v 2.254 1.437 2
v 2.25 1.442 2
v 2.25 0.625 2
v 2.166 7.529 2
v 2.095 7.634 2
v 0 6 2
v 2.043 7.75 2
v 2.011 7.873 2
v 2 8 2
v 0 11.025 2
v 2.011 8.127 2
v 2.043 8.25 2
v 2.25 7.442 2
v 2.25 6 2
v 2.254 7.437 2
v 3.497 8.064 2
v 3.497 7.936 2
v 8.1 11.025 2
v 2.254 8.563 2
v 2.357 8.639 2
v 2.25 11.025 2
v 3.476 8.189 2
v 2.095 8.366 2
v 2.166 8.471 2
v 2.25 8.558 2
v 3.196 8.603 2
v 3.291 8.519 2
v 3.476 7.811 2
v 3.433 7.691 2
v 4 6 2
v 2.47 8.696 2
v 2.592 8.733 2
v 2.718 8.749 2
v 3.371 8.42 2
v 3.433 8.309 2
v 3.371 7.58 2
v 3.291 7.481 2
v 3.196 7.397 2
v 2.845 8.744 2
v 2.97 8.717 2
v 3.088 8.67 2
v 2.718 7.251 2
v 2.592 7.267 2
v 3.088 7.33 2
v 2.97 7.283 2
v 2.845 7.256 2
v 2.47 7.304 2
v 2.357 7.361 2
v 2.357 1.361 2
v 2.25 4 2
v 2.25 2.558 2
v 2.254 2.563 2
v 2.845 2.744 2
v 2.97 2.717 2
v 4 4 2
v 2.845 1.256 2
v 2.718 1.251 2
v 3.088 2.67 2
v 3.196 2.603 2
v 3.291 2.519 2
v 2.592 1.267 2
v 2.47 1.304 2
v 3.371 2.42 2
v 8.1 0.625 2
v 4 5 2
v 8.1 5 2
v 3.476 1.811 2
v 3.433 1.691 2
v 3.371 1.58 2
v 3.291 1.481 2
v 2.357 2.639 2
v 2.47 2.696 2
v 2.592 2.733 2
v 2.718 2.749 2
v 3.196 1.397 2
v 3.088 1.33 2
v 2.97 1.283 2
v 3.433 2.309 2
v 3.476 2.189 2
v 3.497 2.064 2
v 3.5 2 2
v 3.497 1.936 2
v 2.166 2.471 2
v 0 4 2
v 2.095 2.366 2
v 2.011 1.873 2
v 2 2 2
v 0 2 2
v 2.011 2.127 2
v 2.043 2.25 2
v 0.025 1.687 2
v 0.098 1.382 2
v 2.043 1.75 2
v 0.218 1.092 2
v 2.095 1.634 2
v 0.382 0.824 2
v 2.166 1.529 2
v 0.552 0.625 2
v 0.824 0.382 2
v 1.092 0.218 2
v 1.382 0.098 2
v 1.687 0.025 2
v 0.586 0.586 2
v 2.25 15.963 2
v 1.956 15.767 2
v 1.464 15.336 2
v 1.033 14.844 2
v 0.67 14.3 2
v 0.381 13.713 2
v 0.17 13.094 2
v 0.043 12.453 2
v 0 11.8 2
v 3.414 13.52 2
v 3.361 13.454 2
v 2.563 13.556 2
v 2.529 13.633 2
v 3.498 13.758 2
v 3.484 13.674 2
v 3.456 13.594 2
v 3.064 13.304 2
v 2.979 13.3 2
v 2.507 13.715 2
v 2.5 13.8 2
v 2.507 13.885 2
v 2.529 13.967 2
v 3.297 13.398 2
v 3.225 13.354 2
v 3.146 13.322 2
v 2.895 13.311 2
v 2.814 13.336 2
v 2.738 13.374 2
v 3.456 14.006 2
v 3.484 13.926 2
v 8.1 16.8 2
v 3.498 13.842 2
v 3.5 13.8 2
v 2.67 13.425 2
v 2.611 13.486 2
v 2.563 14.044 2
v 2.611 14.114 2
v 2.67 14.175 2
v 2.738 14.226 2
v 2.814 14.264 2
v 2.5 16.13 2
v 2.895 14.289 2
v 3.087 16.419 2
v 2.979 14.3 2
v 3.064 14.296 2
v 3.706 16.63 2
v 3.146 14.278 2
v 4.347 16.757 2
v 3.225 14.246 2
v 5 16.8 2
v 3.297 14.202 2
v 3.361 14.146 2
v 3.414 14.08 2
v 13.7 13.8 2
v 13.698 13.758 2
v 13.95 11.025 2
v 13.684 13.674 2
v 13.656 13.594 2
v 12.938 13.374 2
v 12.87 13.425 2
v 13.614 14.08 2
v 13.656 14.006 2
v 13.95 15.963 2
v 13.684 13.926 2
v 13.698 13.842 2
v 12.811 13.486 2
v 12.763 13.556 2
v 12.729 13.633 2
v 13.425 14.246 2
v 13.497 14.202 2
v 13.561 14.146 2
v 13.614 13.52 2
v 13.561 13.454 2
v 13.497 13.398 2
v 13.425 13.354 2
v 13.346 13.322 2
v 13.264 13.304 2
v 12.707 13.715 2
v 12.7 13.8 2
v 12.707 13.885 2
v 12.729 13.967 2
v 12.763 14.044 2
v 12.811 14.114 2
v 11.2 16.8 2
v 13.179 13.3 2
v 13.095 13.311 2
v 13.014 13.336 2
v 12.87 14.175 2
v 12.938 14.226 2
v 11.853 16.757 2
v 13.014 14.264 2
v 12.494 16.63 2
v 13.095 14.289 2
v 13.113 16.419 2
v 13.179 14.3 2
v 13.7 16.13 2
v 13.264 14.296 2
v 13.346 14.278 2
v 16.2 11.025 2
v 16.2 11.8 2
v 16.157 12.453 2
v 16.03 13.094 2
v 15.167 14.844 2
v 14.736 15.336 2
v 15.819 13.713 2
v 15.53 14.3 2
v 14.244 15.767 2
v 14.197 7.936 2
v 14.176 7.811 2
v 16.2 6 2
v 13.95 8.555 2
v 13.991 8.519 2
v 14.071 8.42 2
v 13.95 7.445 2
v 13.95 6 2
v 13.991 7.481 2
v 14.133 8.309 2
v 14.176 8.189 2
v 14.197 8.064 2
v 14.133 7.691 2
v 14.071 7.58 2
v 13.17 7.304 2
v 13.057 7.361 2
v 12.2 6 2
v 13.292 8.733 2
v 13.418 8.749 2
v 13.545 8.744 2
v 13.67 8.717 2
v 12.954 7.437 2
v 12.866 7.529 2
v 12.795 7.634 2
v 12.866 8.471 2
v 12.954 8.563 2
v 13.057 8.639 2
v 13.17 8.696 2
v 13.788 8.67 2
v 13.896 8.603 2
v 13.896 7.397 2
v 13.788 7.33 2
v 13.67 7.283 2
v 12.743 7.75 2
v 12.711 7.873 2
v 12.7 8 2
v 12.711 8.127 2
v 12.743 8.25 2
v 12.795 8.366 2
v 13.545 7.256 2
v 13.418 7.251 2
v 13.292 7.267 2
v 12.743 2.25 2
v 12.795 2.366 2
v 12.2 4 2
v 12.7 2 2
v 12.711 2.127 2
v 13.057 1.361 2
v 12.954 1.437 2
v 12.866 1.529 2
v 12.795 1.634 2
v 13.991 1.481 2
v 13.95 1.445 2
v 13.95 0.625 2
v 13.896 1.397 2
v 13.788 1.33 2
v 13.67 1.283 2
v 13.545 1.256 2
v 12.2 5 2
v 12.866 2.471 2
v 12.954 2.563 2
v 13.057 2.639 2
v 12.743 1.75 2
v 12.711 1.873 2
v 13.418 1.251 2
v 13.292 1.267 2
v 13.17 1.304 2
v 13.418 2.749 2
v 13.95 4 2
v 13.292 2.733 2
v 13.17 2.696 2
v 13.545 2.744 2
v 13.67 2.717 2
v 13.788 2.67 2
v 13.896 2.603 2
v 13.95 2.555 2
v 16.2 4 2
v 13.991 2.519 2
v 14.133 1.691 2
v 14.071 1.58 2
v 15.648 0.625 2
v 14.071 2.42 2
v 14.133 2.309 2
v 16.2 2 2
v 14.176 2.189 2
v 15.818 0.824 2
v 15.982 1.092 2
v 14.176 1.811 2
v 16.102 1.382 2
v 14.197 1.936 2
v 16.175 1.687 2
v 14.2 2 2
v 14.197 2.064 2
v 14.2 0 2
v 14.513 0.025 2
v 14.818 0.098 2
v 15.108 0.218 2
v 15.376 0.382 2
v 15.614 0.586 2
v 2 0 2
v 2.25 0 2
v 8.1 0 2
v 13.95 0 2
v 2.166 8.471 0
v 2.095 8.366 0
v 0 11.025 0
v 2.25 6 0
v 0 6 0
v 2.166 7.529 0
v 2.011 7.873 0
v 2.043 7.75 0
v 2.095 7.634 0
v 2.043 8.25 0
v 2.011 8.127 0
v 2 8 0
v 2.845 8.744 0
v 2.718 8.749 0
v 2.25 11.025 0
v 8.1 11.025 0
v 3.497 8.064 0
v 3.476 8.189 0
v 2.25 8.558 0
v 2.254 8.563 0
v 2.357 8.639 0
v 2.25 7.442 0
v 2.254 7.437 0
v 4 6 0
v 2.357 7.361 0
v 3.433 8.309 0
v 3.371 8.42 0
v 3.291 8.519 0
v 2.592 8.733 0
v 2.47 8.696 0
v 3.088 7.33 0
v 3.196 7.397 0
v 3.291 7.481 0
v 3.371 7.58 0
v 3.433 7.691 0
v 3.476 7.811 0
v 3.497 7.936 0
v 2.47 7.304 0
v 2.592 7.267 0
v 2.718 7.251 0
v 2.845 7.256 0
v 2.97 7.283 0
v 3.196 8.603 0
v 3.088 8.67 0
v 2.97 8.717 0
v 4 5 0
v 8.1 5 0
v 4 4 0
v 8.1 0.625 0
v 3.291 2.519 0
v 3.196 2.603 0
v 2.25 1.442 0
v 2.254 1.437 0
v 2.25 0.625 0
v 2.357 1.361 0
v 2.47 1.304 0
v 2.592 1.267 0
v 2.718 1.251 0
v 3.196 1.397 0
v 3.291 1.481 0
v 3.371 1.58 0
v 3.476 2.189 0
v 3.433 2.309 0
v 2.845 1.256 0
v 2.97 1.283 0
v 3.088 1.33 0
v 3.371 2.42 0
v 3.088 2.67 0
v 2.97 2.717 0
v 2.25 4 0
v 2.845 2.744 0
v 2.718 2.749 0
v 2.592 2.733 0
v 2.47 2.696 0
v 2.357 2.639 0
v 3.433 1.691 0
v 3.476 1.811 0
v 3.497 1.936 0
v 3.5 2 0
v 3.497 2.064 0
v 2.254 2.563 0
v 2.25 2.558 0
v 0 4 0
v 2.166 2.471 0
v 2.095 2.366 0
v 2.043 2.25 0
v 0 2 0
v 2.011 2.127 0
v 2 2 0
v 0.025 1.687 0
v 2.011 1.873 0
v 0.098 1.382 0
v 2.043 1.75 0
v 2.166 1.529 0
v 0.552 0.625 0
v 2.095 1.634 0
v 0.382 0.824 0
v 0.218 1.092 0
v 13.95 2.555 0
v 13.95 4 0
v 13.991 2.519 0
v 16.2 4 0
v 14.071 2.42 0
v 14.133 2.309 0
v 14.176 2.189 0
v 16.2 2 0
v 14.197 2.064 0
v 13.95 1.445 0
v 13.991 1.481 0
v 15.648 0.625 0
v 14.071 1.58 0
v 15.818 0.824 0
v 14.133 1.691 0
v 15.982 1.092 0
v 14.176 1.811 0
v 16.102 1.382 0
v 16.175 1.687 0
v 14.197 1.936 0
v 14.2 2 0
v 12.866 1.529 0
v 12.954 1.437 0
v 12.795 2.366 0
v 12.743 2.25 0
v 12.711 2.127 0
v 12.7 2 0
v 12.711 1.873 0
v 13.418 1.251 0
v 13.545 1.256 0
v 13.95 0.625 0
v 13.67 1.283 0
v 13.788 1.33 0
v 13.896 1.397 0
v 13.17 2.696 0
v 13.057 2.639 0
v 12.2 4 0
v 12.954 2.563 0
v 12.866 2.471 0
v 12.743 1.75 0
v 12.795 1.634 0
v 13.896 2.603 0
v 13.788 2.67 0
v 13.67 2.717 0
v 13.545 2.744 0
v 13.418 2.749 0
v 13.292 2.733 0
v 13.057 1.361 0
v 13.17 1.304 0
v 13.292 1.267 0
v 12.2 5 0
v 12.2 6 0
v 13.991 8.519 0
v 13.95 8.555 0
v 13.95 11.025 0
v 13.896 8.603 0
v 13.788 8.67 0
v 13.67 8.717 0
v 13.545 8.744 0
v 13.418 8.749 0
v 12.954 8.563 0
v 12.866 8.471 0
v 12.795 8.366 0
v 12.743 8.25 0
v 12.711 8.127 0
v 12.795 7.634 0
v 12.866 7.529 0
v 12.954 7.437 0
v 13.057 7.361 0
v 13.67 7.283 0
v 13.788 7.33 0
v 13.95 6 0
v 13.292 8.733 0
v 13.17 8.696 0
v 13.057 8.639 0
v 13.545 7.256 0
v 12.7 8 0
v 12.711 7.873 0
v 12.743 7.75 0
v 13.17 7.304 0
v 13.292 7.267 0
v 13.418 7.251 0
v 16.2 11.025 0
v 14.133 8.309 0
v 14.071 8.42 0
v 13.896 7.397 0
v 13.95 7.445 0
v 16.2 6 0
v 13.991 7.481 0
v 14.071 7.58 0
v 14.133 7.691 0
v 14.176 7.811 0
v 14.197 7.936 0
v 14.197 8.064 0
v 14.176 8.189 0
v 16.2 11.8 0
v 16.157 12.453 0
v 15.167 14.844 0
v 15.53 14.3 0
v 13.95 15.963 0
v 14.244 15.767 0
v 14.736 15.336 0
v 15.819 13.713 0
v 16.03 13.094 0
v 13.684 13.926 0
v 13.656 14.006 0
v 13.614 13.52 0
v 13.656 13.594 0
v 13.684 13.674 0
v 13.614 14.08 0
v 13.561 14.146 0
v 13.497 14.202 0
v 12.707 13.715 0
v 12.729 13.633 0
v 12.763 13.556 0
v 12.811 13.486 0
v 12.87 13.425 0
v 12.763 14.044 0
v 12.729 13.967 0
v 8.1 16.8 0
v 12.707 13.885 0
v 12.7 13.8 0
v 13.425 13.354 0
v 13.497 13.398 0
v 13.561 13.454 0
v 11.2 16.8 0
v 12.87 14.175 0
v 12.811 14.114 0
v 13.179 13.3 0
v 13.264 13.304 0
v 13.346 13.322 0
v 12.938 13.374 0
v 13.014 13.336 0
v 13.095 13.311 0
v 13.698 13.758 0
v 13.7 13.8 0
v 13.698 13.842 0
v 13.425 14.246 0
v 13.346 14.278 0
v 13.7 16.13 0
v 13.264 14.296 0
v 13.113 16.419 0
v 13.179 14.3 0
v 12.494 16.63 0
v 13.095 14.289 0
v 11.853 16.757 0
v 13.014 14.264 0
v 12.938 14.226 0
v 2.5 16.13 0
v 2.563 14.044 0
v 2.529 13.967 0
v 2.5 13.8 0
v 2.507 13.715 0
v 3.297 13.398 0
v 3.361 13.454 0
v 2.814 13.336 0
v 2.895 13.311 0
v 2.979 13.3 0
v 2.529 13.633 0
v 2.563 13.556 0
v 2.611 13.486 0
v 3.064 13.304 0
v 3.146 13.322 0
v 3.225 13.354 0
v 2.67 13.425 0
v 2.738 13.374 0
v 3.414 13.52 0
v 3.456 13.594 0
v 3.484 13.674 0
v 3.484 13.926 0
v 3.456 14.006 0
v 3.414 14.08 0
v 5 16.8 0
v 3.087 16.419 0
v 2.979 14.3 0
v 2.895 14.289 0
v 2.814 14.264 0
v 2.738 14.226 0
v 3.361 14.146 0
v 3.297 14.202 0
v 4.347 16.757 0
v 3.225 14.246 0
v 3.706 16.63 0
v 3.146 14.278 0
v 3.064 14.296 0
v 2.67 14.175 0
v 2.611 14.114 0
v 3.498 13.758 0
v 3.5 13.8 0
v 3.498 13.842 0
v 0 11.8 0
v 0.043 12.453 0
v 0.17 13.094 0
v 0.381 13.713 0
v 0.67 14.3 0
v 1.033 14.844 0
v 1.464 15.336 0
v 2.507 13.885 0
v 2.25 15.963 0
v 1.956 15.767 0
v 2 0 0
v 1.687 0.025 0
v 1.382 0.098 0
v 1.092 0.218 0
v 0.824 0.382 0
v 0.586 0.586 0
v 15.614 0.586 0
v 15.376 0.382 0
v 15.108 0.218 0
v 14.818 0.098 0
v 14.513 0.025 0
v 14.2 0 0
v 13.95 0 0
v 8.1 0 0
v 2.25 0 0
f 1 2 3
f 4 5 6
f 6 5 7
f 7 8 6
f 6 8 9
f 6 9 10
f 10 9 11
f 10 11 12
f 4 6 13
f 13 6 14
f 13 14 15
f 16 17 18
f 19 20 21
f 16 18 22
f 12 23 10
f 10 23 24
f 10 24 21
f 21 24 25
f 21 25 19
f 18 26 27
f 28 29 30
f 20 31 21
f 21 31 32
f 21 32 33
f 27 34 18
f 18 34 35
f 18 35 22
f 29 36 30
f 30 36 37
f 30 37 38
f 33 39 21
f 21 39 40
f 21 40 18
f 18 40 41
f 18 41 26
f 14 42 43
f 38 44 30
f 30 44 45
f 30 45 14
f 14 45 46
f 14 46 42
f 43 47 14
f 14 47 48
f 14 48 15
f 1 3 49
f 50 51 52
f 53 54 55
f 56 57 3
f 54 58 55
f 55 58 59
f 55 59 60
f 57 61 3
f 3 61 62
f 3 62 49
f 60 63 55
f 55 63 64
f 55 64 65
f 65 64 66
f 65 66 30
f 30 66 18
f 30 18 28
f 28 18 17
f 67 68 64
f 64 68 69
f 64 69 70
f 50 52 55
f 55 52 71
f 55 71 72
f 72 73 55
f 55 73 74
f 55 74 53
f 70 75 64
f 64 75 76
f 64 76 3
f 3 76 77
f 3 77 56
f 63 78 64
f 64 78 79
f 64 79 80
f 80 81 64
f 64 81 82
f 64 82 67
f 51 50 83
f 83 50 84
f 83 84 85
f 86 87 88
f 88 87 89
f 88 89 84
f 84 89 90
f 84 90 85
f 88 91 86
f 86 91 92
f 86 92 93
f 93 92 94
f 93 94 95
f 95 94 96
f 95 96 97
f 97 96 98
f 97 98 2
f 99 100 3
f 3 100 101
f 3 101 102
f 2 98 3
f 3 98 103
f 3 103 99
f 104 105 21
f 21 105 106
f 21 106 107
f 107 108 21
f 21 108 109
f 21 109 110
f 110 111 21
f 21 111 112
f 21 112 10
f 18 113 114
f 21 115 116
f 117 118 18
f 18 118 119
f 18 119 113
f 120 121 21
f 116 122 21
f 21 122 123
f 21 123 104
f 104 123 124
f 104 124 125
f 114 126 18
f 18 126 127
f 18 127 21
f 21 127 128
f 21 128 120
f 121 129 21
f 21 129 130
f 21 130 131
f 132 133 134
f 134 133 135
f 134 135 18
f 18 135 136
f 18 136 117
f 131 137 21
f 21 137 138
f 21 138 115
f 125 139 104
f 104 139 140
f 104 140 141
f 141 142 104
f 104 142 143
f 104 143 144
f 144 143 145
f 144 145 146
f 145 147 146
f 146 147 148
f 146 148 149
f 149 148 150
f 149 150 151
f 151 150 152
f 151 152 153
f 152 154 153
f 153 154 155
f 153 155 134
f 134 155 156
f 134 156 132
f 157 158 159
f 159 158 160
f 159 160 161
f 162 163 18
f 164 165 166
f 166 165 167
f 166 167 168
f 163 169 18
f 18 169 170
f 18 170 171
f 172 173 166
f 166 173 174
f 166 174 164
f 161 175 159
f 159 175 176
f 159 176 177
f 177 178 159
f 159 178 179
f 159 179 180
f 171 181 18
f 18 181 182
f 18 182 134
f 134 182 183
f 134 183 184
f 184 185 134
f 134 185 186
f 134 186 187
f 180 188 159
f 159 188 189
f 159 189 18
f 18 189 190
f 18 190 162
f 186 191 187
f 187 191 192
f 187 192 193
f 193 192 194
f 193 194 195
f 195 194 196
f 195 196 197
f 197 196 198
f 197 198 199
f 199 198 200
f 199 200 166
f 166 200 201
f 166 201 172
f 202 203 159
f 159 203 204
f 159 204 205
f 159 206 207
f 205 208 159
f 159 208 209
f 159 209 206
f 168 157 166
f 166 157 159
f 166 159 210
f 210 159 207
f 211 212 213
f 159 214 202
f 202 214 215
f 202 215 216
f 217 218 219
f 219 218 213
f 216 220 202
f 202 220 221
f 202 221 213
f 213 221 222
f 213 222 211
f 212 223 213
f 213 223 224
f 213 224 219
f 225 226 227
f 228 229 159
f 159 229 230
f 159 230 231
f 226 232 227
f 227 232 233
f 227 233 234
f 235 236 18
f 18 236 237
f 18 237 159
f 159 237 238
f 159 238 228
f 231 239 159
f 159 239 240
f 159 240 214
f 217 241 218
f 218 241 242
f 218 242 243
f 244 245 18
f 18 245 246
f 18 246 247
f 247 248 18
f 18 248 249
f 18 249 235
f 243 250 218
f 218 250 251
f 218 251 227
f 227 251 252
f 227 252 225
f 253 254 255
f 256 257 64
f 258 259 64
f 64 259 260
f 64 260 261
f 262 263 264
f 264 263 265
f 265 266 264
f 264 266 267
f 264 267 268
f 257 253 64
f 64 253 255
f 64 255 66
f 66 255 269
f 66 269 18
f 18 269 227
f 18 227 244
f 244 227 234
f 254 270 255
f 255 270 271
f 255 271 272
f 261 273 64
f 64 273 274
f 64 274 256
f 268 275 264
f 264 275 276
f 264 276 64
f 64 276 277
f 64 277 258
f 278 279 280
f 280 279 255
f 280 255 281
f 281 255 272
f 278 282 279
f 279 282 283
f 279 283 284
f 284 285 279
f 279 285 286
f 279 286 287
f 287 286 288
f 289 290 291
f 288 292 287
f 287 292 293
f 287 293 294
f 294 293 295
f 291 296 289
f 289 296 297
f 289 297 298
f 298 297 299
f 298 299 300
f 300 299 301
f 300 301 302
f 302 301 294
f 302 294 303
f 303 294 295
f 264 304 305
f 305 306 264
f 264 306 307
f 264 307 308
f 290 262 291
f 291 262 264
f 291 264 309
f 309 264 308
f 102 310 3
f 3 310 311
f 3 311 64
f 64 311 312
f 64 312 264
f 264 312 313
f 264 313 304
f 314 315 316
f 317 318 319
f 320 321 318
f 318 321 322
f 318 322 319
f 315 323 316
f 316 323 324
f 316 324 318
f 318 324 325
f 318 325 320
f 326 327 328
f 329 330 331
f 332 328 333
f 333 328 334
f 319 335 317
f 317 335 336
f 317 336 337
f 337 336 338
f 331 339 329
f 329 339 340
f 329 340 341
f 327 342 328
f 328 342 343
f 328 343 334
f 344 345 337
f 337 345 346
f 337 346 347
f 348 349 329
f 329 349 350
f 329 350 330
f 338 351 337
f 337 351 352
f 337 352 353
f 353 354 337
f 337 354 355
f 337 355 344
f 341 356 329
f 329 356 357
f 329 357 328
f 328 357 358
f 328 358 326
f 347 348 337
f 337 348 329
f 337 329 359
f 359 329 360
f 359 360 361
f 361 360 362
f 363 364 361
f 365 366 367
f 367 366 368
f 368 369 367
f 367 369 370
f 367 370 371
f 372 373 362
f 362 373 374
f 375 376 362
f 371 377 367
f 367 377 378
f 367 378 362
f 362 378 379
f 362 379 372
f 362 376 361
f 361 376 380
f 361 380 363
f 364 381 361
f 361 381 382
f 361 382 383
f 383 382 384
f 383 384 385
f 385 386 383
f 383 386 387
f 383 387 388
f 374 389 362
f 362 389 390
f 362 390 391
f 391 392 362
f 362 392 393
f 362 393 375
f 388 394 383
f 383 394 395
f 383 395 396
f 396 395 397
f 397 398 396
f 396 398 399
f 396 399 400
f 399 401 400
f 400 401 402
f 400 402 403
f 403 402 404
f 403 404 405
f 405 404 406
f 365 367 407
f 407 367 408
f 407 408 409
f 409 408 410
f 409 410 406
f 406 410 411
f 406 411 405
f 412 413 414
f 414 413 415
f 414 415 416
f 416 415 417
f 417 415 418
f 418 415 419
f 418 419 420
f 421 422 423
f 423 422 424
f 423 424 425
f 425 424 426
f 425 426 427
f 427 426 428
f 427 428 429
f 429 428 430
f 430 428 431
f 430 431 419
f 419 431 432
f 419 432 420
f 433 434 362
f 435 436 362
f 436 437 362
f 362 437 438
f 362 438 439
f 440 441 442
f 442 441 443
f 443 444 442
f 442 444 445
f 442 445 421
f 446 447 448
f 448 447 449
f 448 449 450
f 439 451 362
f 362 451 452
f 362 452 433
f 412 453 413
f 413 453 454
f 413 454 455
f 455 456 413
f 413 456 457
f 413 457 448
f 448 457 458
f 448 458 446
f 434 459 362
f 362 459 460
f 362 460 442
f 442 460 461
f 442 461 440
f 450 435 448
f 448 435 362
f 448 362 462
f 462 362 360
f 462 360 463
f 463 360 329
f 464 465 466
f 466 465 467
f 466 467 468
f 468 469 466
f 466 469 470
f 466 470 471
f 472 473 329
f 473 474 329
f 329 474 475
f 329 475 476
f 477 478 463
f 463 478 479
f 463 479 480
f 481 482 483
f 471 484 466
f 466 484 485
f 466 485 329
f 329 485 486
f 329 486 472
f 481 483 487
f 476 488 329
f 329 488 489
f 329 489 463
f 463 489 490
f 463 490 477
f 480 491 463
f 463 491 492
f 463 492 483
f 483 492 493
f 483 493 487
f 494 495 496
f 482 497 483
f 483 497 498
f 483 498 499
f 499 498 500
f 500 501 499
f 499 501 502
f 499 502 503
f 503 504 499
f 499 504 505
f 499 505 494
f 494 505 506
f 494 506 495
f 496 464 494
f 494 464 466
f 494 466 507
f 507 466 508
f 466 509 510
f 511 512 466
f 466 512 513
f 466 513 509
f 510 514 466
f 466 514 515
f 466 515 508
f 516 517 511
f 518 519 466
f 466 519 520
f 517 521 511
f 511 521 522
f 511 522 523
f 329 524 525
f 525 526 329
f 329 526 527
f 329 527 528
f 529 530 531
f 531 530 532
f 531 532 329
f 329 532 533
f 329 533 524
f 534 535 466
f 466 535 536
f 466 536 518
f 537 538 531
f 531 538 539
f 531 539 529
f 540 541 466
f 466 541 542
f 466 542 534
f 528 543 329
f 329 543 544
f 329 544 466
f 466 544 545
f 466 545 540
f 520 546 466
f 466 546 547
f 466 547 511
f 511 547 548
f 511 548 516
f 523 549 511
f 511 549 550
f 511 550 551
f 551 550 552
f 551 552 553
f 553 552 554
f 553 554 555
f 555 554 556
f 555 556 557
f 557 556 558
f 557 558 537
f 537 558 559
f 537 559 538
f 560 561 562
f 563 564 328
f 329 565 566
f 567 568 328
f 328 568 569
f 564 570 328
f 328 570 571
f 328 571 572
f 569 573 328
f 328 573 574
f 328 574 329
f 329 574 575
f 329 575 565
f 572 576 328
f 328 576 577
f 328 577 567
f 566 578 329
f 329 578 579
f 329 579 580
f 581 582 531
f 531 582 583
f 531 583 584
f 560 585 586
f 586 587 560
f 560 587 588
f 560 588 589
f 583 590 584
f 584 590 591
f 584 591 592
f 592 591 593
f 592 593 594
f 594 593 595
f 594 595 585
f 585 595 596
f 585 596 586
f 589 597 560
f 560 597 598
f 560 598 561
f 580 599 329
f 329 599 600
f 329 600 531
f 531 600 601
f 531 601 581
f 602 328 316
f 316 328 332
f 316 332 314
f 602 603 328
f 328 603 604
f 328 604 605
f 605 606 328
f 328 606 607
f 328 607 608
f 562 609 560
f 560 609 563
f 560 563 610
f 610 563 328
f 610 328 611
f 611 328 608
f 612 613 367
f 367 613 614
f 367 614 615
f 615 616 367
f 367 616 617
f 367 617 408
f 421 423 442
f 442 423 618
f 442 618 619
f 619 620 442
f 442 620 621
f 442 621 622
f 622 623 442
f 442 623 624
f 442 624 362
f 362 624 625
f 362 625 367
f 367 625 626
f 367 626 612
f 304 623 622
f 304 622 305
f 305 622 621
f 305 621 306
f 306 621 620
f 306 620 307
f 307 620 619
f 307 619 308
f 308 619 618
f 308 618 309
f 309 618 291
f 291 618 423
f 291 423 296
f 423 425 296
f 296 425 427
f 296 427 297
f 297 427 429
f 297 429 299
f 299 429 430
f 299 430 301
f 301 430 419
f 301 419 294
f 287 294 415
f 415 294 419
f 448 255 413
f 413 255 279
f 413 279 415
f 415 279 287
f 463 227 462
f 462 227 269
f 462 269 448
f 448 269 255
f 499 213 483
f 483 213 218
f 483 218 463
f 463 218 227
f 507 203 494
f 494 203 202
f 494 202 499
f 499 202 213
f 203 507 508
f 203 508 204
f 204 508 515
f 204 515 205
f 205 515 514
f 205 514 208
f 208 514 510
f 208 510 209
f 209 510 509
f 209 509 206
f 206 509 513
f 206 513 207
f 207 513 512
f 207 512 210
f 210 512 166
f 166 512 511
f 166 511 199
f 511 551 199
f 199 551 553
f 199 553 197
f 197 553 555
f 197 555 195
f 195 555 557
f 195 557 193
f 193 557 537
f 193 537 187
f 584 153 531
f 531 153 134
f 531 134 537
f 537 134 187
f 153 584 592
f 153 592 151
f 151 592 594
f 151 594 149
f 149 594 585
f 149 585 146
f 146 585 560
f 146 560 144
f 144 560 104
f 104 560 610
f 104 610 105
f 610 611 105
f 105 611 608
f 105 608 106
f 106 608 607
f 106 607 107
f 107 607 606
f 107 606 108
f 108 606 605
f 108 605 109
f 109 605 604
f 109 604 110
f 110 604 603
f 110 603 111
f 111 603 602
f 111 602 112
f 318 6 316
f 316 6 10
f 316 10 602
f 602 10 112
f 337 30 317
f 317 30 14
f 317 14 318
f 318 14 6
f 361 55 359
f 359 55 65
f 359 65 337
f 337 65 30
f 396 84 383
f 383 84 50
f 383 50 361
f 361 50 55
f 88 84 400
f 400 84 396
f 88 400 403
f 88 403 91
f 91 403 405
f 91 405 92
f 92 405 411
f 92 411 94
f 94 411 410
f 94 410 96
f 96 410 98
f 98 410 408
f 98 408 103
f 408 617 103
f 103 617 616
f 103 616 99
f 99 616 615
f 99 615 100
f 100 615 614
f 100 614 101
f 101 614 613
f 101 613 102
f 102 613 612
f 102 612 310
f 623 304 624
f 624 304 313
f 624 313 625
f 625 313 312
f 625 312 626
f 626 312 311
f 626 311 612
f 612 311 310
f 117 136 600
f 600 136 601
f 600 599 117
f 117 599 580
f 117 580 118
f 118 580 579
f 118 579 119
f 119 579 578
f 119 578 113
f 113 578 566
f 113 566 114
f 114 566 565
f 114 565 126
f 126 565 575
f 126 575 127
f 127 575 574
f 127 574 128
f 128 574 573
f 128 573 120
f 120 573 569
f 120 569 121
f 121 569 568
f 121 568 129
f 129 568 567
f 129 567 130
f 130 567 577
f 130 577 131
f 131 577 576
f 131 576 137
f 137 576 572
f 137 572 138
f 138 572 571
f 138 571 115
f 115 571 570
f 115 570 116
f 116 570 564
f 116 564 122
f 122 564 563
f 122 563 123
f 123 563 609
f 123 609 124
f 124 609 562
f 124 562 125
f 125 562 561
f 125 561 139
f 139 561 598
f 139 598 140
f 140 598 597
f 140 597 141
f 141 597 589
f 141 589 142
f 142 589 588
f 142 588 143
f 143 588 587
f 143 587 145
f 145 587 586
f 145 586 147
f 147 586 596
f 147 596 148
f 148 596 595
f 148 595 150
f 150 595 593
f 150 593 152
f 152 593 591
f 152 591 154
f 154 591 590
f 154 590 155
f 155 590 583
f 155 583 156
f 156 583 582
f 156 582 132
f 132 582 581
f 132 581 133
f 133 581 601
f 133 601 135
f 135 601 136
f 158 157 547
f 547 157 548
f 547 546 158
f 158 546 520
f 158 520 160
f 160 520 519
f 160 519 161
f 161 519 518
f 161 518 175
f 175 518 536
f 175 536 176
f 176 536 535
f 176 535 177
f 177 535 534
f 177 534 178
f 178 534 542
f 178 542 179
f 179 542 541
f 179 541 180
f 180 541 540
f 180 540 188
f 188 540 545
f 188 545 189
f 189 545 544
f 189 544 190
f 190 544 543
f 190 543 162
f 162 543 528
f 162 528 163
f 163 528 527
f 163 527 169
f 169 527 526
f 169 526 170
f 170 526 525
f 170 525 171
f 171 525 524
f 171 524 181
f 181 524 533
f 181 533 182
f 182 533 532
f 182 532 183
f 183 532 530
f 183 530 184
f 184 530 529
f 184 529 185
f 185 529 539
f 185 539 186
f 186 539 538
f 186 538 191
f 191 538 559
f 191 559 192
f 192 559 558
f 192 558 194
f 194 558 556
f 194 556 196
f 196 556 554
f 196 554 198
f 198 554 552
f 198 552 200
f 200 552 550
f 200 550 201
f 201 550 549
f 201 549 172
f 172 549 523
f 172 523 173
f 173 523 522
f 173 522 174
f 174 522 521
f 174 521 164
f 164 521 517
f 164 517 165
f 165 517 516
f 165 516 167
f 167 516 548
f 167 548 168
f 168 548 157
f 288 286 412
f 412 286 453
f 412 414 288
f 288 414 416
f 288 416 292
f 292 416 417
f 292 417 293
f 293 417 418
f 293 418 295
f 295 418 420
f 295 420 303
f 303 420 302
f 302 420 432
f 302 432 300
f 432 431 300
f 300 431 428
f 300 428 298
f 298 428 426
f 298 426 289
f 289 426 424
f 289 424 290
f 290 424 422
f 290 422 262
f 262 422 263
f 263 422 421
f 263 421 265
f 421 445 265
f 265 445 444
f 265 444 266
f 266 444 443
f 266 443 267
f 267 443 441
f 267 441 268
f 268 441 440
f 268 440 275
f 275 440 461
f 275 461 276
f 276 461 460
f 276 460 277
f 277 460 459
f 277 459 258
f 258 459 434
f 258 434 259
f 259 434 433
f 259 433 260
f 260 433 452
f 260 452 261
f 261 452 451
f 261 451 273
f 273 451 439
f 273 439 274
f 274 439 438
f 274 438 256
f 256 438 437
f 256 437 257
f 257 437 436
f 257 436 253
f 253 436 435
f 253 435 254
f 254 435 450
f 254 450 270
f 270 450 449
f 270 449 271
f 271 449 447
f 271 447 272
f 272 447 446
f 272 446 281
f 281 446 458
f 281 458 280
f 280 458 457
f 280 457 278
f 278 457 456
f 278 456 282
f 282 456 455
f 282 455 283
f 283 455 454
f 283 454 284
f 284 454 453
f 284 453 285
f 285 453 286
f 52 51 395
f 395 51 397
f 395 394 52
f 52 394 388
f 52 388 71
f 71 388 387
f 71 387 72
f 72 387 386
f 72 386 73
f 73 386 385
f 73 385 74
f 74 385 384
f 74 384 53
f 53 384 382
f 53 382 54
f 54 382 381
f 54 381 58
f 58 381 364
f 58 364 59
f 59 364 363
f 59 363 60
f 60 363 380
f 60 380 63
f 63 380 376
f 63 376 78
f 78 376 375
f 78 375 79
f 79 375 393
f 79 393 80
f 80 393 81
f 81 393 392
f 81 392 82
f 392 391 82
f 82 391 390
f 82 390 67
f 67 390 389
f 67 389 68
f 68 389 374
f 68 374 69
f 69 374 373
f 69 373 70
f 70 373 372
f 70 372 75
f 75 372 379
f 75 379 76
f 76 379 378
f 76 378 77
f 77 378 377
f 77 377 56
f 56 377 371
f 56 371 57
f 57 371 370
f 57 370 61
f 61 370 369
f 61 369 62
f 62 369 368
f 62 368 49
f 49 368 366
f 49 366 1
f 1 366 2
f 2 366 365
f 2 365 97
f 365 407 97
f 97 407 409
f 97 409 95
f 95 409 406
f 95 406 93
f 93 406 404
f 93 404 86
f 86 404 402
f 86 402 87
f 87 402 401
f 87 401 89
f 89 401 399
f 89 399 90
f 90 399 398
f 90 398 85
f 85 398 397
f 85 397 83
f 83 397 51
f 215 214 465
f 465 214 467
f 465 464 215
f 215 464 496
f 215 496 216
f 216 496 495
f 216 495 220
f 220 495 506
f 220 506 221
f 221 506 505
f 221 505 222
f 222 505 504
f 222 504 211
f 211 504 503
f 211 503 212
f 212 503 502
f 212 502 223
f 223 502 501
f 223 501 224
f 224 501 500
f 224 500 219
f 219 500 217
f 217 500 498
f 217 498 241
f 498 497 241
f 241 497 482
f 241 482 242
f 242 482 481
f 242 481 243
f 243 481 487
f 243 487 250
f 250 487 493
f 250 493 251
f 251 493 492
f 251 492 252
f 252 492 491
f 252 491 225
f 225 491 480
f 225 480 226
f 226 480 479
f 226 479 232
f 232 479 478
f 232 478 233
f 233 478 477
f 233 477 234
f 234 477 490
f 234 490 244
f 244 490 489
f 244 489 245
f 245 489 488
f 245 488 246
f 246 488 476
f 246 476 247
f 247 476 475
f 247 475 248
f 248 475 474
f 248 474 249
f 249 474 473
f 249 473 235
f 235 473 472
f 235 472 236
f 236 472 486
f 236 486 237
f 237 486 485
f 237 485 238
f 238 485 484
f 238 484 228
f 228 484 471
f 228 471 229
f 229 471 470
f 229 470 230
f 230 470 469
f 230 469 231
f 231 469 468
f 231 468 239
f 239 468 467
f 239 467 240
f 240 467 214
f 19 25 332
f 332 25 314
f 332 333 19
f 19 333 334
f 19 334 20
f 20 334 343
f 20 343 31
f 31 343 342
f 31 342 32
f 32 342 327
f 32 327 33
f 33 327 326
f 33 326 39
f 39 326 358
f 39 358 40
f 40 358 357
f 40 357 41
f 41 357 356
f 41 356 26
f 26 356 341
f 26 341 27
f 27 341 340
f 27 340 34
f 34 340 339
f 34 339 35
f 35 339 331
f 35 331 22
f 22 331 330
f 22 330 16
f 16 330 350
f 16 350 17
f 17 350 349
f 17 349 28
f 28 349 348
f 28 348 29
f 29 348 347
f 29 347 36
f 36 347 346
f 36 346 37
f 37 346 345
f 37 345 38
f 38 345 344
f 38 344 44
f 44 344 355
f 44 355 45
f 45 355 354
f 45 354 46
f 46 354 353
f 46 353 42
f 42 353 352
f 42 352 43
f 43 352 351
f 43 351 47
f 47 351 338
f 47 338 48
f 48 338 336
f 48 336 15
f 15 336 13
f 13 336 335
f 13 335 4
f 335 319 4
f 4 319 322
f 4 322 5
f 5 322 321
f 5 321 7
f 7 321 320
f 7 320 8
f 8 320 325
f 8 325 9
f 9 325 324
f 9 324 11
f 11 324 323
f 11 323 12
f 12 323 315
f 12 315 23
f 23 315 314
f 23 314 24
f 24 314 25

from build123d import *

# Parameters (mm, degrees)
SKETCH1_R           = 0.5
SKETCH1_R_2         = 0.75
BOSS_EXTRUDE1_DEPTH = 2


with BuildPart() as part:
    # Sketch1 → Boss-Extrude1 (new body)
    with BuildSketch(Plane.XY):
        with BuildLine():
            Line((0, 6), (0, 11.8))
            ThreePointArc((0, 11.8), (1.464466094, 15.335533906), (5, 16.8))
            Line((5, 16.8), (11.2, 16.8))
            ThreePointArc((11.2, 16.8), (14.735533906, 15.335533906), (16.2, 11.8))
            Line((16.2, 11.8), (16.2, 6))
            Line((16.2, 6), (12.2, 6))
            Line((12.2, 6), (12.2, 4))
            Line((12.2, 4), (16.2, 4))
            Line((16.2, 4), (16.2, 2))
            ThreePointArc((16.2, 2), (15.614213562, 0.585786438), (14.2, 0))
            Line((14.2, 0), (2, 0))
            ThreePointArc((2, 0), (0.585786438, 0.585786438), (0, 2))
            Line((0, 2), (0, 4))
            Line((0, 4), (4, 4))
            Line((4, 4), (4, 6))
            Line((4, 6), (0, 6))
        make_face()
        with Locations((3, 13.8)):
            Circle(SKETCH1_R, mode=Mode.SUBTRACT)
        with Locations((13.2, 13.8)):
            Circle(SKETCH1_R, mode=Mode.SUBTRACT)
        with Locations(Location((13.45, 8, 0), (0, 0, 180))):
            Circle(SKETCH1_R_2, mode=Mode.SUBTRACT)
        with Locations(Location((2.75, 8, 0), (0, 0, 180))):
            Circle(SKETCH1_R_2, mode=Mode.SUBTRACT)
        with Locations((13.45, 2)):
            Circle(SKETCH1_R_2, mode=Mode.SUBTRACT)
        with Locations((2.75, 2)):
            Circle(SKETCH1_R_2, mode=Mode.SUBTRACT)
    extrude(amount=BOSS_EXTRUDE1_DEPTH)


solid = part.part
